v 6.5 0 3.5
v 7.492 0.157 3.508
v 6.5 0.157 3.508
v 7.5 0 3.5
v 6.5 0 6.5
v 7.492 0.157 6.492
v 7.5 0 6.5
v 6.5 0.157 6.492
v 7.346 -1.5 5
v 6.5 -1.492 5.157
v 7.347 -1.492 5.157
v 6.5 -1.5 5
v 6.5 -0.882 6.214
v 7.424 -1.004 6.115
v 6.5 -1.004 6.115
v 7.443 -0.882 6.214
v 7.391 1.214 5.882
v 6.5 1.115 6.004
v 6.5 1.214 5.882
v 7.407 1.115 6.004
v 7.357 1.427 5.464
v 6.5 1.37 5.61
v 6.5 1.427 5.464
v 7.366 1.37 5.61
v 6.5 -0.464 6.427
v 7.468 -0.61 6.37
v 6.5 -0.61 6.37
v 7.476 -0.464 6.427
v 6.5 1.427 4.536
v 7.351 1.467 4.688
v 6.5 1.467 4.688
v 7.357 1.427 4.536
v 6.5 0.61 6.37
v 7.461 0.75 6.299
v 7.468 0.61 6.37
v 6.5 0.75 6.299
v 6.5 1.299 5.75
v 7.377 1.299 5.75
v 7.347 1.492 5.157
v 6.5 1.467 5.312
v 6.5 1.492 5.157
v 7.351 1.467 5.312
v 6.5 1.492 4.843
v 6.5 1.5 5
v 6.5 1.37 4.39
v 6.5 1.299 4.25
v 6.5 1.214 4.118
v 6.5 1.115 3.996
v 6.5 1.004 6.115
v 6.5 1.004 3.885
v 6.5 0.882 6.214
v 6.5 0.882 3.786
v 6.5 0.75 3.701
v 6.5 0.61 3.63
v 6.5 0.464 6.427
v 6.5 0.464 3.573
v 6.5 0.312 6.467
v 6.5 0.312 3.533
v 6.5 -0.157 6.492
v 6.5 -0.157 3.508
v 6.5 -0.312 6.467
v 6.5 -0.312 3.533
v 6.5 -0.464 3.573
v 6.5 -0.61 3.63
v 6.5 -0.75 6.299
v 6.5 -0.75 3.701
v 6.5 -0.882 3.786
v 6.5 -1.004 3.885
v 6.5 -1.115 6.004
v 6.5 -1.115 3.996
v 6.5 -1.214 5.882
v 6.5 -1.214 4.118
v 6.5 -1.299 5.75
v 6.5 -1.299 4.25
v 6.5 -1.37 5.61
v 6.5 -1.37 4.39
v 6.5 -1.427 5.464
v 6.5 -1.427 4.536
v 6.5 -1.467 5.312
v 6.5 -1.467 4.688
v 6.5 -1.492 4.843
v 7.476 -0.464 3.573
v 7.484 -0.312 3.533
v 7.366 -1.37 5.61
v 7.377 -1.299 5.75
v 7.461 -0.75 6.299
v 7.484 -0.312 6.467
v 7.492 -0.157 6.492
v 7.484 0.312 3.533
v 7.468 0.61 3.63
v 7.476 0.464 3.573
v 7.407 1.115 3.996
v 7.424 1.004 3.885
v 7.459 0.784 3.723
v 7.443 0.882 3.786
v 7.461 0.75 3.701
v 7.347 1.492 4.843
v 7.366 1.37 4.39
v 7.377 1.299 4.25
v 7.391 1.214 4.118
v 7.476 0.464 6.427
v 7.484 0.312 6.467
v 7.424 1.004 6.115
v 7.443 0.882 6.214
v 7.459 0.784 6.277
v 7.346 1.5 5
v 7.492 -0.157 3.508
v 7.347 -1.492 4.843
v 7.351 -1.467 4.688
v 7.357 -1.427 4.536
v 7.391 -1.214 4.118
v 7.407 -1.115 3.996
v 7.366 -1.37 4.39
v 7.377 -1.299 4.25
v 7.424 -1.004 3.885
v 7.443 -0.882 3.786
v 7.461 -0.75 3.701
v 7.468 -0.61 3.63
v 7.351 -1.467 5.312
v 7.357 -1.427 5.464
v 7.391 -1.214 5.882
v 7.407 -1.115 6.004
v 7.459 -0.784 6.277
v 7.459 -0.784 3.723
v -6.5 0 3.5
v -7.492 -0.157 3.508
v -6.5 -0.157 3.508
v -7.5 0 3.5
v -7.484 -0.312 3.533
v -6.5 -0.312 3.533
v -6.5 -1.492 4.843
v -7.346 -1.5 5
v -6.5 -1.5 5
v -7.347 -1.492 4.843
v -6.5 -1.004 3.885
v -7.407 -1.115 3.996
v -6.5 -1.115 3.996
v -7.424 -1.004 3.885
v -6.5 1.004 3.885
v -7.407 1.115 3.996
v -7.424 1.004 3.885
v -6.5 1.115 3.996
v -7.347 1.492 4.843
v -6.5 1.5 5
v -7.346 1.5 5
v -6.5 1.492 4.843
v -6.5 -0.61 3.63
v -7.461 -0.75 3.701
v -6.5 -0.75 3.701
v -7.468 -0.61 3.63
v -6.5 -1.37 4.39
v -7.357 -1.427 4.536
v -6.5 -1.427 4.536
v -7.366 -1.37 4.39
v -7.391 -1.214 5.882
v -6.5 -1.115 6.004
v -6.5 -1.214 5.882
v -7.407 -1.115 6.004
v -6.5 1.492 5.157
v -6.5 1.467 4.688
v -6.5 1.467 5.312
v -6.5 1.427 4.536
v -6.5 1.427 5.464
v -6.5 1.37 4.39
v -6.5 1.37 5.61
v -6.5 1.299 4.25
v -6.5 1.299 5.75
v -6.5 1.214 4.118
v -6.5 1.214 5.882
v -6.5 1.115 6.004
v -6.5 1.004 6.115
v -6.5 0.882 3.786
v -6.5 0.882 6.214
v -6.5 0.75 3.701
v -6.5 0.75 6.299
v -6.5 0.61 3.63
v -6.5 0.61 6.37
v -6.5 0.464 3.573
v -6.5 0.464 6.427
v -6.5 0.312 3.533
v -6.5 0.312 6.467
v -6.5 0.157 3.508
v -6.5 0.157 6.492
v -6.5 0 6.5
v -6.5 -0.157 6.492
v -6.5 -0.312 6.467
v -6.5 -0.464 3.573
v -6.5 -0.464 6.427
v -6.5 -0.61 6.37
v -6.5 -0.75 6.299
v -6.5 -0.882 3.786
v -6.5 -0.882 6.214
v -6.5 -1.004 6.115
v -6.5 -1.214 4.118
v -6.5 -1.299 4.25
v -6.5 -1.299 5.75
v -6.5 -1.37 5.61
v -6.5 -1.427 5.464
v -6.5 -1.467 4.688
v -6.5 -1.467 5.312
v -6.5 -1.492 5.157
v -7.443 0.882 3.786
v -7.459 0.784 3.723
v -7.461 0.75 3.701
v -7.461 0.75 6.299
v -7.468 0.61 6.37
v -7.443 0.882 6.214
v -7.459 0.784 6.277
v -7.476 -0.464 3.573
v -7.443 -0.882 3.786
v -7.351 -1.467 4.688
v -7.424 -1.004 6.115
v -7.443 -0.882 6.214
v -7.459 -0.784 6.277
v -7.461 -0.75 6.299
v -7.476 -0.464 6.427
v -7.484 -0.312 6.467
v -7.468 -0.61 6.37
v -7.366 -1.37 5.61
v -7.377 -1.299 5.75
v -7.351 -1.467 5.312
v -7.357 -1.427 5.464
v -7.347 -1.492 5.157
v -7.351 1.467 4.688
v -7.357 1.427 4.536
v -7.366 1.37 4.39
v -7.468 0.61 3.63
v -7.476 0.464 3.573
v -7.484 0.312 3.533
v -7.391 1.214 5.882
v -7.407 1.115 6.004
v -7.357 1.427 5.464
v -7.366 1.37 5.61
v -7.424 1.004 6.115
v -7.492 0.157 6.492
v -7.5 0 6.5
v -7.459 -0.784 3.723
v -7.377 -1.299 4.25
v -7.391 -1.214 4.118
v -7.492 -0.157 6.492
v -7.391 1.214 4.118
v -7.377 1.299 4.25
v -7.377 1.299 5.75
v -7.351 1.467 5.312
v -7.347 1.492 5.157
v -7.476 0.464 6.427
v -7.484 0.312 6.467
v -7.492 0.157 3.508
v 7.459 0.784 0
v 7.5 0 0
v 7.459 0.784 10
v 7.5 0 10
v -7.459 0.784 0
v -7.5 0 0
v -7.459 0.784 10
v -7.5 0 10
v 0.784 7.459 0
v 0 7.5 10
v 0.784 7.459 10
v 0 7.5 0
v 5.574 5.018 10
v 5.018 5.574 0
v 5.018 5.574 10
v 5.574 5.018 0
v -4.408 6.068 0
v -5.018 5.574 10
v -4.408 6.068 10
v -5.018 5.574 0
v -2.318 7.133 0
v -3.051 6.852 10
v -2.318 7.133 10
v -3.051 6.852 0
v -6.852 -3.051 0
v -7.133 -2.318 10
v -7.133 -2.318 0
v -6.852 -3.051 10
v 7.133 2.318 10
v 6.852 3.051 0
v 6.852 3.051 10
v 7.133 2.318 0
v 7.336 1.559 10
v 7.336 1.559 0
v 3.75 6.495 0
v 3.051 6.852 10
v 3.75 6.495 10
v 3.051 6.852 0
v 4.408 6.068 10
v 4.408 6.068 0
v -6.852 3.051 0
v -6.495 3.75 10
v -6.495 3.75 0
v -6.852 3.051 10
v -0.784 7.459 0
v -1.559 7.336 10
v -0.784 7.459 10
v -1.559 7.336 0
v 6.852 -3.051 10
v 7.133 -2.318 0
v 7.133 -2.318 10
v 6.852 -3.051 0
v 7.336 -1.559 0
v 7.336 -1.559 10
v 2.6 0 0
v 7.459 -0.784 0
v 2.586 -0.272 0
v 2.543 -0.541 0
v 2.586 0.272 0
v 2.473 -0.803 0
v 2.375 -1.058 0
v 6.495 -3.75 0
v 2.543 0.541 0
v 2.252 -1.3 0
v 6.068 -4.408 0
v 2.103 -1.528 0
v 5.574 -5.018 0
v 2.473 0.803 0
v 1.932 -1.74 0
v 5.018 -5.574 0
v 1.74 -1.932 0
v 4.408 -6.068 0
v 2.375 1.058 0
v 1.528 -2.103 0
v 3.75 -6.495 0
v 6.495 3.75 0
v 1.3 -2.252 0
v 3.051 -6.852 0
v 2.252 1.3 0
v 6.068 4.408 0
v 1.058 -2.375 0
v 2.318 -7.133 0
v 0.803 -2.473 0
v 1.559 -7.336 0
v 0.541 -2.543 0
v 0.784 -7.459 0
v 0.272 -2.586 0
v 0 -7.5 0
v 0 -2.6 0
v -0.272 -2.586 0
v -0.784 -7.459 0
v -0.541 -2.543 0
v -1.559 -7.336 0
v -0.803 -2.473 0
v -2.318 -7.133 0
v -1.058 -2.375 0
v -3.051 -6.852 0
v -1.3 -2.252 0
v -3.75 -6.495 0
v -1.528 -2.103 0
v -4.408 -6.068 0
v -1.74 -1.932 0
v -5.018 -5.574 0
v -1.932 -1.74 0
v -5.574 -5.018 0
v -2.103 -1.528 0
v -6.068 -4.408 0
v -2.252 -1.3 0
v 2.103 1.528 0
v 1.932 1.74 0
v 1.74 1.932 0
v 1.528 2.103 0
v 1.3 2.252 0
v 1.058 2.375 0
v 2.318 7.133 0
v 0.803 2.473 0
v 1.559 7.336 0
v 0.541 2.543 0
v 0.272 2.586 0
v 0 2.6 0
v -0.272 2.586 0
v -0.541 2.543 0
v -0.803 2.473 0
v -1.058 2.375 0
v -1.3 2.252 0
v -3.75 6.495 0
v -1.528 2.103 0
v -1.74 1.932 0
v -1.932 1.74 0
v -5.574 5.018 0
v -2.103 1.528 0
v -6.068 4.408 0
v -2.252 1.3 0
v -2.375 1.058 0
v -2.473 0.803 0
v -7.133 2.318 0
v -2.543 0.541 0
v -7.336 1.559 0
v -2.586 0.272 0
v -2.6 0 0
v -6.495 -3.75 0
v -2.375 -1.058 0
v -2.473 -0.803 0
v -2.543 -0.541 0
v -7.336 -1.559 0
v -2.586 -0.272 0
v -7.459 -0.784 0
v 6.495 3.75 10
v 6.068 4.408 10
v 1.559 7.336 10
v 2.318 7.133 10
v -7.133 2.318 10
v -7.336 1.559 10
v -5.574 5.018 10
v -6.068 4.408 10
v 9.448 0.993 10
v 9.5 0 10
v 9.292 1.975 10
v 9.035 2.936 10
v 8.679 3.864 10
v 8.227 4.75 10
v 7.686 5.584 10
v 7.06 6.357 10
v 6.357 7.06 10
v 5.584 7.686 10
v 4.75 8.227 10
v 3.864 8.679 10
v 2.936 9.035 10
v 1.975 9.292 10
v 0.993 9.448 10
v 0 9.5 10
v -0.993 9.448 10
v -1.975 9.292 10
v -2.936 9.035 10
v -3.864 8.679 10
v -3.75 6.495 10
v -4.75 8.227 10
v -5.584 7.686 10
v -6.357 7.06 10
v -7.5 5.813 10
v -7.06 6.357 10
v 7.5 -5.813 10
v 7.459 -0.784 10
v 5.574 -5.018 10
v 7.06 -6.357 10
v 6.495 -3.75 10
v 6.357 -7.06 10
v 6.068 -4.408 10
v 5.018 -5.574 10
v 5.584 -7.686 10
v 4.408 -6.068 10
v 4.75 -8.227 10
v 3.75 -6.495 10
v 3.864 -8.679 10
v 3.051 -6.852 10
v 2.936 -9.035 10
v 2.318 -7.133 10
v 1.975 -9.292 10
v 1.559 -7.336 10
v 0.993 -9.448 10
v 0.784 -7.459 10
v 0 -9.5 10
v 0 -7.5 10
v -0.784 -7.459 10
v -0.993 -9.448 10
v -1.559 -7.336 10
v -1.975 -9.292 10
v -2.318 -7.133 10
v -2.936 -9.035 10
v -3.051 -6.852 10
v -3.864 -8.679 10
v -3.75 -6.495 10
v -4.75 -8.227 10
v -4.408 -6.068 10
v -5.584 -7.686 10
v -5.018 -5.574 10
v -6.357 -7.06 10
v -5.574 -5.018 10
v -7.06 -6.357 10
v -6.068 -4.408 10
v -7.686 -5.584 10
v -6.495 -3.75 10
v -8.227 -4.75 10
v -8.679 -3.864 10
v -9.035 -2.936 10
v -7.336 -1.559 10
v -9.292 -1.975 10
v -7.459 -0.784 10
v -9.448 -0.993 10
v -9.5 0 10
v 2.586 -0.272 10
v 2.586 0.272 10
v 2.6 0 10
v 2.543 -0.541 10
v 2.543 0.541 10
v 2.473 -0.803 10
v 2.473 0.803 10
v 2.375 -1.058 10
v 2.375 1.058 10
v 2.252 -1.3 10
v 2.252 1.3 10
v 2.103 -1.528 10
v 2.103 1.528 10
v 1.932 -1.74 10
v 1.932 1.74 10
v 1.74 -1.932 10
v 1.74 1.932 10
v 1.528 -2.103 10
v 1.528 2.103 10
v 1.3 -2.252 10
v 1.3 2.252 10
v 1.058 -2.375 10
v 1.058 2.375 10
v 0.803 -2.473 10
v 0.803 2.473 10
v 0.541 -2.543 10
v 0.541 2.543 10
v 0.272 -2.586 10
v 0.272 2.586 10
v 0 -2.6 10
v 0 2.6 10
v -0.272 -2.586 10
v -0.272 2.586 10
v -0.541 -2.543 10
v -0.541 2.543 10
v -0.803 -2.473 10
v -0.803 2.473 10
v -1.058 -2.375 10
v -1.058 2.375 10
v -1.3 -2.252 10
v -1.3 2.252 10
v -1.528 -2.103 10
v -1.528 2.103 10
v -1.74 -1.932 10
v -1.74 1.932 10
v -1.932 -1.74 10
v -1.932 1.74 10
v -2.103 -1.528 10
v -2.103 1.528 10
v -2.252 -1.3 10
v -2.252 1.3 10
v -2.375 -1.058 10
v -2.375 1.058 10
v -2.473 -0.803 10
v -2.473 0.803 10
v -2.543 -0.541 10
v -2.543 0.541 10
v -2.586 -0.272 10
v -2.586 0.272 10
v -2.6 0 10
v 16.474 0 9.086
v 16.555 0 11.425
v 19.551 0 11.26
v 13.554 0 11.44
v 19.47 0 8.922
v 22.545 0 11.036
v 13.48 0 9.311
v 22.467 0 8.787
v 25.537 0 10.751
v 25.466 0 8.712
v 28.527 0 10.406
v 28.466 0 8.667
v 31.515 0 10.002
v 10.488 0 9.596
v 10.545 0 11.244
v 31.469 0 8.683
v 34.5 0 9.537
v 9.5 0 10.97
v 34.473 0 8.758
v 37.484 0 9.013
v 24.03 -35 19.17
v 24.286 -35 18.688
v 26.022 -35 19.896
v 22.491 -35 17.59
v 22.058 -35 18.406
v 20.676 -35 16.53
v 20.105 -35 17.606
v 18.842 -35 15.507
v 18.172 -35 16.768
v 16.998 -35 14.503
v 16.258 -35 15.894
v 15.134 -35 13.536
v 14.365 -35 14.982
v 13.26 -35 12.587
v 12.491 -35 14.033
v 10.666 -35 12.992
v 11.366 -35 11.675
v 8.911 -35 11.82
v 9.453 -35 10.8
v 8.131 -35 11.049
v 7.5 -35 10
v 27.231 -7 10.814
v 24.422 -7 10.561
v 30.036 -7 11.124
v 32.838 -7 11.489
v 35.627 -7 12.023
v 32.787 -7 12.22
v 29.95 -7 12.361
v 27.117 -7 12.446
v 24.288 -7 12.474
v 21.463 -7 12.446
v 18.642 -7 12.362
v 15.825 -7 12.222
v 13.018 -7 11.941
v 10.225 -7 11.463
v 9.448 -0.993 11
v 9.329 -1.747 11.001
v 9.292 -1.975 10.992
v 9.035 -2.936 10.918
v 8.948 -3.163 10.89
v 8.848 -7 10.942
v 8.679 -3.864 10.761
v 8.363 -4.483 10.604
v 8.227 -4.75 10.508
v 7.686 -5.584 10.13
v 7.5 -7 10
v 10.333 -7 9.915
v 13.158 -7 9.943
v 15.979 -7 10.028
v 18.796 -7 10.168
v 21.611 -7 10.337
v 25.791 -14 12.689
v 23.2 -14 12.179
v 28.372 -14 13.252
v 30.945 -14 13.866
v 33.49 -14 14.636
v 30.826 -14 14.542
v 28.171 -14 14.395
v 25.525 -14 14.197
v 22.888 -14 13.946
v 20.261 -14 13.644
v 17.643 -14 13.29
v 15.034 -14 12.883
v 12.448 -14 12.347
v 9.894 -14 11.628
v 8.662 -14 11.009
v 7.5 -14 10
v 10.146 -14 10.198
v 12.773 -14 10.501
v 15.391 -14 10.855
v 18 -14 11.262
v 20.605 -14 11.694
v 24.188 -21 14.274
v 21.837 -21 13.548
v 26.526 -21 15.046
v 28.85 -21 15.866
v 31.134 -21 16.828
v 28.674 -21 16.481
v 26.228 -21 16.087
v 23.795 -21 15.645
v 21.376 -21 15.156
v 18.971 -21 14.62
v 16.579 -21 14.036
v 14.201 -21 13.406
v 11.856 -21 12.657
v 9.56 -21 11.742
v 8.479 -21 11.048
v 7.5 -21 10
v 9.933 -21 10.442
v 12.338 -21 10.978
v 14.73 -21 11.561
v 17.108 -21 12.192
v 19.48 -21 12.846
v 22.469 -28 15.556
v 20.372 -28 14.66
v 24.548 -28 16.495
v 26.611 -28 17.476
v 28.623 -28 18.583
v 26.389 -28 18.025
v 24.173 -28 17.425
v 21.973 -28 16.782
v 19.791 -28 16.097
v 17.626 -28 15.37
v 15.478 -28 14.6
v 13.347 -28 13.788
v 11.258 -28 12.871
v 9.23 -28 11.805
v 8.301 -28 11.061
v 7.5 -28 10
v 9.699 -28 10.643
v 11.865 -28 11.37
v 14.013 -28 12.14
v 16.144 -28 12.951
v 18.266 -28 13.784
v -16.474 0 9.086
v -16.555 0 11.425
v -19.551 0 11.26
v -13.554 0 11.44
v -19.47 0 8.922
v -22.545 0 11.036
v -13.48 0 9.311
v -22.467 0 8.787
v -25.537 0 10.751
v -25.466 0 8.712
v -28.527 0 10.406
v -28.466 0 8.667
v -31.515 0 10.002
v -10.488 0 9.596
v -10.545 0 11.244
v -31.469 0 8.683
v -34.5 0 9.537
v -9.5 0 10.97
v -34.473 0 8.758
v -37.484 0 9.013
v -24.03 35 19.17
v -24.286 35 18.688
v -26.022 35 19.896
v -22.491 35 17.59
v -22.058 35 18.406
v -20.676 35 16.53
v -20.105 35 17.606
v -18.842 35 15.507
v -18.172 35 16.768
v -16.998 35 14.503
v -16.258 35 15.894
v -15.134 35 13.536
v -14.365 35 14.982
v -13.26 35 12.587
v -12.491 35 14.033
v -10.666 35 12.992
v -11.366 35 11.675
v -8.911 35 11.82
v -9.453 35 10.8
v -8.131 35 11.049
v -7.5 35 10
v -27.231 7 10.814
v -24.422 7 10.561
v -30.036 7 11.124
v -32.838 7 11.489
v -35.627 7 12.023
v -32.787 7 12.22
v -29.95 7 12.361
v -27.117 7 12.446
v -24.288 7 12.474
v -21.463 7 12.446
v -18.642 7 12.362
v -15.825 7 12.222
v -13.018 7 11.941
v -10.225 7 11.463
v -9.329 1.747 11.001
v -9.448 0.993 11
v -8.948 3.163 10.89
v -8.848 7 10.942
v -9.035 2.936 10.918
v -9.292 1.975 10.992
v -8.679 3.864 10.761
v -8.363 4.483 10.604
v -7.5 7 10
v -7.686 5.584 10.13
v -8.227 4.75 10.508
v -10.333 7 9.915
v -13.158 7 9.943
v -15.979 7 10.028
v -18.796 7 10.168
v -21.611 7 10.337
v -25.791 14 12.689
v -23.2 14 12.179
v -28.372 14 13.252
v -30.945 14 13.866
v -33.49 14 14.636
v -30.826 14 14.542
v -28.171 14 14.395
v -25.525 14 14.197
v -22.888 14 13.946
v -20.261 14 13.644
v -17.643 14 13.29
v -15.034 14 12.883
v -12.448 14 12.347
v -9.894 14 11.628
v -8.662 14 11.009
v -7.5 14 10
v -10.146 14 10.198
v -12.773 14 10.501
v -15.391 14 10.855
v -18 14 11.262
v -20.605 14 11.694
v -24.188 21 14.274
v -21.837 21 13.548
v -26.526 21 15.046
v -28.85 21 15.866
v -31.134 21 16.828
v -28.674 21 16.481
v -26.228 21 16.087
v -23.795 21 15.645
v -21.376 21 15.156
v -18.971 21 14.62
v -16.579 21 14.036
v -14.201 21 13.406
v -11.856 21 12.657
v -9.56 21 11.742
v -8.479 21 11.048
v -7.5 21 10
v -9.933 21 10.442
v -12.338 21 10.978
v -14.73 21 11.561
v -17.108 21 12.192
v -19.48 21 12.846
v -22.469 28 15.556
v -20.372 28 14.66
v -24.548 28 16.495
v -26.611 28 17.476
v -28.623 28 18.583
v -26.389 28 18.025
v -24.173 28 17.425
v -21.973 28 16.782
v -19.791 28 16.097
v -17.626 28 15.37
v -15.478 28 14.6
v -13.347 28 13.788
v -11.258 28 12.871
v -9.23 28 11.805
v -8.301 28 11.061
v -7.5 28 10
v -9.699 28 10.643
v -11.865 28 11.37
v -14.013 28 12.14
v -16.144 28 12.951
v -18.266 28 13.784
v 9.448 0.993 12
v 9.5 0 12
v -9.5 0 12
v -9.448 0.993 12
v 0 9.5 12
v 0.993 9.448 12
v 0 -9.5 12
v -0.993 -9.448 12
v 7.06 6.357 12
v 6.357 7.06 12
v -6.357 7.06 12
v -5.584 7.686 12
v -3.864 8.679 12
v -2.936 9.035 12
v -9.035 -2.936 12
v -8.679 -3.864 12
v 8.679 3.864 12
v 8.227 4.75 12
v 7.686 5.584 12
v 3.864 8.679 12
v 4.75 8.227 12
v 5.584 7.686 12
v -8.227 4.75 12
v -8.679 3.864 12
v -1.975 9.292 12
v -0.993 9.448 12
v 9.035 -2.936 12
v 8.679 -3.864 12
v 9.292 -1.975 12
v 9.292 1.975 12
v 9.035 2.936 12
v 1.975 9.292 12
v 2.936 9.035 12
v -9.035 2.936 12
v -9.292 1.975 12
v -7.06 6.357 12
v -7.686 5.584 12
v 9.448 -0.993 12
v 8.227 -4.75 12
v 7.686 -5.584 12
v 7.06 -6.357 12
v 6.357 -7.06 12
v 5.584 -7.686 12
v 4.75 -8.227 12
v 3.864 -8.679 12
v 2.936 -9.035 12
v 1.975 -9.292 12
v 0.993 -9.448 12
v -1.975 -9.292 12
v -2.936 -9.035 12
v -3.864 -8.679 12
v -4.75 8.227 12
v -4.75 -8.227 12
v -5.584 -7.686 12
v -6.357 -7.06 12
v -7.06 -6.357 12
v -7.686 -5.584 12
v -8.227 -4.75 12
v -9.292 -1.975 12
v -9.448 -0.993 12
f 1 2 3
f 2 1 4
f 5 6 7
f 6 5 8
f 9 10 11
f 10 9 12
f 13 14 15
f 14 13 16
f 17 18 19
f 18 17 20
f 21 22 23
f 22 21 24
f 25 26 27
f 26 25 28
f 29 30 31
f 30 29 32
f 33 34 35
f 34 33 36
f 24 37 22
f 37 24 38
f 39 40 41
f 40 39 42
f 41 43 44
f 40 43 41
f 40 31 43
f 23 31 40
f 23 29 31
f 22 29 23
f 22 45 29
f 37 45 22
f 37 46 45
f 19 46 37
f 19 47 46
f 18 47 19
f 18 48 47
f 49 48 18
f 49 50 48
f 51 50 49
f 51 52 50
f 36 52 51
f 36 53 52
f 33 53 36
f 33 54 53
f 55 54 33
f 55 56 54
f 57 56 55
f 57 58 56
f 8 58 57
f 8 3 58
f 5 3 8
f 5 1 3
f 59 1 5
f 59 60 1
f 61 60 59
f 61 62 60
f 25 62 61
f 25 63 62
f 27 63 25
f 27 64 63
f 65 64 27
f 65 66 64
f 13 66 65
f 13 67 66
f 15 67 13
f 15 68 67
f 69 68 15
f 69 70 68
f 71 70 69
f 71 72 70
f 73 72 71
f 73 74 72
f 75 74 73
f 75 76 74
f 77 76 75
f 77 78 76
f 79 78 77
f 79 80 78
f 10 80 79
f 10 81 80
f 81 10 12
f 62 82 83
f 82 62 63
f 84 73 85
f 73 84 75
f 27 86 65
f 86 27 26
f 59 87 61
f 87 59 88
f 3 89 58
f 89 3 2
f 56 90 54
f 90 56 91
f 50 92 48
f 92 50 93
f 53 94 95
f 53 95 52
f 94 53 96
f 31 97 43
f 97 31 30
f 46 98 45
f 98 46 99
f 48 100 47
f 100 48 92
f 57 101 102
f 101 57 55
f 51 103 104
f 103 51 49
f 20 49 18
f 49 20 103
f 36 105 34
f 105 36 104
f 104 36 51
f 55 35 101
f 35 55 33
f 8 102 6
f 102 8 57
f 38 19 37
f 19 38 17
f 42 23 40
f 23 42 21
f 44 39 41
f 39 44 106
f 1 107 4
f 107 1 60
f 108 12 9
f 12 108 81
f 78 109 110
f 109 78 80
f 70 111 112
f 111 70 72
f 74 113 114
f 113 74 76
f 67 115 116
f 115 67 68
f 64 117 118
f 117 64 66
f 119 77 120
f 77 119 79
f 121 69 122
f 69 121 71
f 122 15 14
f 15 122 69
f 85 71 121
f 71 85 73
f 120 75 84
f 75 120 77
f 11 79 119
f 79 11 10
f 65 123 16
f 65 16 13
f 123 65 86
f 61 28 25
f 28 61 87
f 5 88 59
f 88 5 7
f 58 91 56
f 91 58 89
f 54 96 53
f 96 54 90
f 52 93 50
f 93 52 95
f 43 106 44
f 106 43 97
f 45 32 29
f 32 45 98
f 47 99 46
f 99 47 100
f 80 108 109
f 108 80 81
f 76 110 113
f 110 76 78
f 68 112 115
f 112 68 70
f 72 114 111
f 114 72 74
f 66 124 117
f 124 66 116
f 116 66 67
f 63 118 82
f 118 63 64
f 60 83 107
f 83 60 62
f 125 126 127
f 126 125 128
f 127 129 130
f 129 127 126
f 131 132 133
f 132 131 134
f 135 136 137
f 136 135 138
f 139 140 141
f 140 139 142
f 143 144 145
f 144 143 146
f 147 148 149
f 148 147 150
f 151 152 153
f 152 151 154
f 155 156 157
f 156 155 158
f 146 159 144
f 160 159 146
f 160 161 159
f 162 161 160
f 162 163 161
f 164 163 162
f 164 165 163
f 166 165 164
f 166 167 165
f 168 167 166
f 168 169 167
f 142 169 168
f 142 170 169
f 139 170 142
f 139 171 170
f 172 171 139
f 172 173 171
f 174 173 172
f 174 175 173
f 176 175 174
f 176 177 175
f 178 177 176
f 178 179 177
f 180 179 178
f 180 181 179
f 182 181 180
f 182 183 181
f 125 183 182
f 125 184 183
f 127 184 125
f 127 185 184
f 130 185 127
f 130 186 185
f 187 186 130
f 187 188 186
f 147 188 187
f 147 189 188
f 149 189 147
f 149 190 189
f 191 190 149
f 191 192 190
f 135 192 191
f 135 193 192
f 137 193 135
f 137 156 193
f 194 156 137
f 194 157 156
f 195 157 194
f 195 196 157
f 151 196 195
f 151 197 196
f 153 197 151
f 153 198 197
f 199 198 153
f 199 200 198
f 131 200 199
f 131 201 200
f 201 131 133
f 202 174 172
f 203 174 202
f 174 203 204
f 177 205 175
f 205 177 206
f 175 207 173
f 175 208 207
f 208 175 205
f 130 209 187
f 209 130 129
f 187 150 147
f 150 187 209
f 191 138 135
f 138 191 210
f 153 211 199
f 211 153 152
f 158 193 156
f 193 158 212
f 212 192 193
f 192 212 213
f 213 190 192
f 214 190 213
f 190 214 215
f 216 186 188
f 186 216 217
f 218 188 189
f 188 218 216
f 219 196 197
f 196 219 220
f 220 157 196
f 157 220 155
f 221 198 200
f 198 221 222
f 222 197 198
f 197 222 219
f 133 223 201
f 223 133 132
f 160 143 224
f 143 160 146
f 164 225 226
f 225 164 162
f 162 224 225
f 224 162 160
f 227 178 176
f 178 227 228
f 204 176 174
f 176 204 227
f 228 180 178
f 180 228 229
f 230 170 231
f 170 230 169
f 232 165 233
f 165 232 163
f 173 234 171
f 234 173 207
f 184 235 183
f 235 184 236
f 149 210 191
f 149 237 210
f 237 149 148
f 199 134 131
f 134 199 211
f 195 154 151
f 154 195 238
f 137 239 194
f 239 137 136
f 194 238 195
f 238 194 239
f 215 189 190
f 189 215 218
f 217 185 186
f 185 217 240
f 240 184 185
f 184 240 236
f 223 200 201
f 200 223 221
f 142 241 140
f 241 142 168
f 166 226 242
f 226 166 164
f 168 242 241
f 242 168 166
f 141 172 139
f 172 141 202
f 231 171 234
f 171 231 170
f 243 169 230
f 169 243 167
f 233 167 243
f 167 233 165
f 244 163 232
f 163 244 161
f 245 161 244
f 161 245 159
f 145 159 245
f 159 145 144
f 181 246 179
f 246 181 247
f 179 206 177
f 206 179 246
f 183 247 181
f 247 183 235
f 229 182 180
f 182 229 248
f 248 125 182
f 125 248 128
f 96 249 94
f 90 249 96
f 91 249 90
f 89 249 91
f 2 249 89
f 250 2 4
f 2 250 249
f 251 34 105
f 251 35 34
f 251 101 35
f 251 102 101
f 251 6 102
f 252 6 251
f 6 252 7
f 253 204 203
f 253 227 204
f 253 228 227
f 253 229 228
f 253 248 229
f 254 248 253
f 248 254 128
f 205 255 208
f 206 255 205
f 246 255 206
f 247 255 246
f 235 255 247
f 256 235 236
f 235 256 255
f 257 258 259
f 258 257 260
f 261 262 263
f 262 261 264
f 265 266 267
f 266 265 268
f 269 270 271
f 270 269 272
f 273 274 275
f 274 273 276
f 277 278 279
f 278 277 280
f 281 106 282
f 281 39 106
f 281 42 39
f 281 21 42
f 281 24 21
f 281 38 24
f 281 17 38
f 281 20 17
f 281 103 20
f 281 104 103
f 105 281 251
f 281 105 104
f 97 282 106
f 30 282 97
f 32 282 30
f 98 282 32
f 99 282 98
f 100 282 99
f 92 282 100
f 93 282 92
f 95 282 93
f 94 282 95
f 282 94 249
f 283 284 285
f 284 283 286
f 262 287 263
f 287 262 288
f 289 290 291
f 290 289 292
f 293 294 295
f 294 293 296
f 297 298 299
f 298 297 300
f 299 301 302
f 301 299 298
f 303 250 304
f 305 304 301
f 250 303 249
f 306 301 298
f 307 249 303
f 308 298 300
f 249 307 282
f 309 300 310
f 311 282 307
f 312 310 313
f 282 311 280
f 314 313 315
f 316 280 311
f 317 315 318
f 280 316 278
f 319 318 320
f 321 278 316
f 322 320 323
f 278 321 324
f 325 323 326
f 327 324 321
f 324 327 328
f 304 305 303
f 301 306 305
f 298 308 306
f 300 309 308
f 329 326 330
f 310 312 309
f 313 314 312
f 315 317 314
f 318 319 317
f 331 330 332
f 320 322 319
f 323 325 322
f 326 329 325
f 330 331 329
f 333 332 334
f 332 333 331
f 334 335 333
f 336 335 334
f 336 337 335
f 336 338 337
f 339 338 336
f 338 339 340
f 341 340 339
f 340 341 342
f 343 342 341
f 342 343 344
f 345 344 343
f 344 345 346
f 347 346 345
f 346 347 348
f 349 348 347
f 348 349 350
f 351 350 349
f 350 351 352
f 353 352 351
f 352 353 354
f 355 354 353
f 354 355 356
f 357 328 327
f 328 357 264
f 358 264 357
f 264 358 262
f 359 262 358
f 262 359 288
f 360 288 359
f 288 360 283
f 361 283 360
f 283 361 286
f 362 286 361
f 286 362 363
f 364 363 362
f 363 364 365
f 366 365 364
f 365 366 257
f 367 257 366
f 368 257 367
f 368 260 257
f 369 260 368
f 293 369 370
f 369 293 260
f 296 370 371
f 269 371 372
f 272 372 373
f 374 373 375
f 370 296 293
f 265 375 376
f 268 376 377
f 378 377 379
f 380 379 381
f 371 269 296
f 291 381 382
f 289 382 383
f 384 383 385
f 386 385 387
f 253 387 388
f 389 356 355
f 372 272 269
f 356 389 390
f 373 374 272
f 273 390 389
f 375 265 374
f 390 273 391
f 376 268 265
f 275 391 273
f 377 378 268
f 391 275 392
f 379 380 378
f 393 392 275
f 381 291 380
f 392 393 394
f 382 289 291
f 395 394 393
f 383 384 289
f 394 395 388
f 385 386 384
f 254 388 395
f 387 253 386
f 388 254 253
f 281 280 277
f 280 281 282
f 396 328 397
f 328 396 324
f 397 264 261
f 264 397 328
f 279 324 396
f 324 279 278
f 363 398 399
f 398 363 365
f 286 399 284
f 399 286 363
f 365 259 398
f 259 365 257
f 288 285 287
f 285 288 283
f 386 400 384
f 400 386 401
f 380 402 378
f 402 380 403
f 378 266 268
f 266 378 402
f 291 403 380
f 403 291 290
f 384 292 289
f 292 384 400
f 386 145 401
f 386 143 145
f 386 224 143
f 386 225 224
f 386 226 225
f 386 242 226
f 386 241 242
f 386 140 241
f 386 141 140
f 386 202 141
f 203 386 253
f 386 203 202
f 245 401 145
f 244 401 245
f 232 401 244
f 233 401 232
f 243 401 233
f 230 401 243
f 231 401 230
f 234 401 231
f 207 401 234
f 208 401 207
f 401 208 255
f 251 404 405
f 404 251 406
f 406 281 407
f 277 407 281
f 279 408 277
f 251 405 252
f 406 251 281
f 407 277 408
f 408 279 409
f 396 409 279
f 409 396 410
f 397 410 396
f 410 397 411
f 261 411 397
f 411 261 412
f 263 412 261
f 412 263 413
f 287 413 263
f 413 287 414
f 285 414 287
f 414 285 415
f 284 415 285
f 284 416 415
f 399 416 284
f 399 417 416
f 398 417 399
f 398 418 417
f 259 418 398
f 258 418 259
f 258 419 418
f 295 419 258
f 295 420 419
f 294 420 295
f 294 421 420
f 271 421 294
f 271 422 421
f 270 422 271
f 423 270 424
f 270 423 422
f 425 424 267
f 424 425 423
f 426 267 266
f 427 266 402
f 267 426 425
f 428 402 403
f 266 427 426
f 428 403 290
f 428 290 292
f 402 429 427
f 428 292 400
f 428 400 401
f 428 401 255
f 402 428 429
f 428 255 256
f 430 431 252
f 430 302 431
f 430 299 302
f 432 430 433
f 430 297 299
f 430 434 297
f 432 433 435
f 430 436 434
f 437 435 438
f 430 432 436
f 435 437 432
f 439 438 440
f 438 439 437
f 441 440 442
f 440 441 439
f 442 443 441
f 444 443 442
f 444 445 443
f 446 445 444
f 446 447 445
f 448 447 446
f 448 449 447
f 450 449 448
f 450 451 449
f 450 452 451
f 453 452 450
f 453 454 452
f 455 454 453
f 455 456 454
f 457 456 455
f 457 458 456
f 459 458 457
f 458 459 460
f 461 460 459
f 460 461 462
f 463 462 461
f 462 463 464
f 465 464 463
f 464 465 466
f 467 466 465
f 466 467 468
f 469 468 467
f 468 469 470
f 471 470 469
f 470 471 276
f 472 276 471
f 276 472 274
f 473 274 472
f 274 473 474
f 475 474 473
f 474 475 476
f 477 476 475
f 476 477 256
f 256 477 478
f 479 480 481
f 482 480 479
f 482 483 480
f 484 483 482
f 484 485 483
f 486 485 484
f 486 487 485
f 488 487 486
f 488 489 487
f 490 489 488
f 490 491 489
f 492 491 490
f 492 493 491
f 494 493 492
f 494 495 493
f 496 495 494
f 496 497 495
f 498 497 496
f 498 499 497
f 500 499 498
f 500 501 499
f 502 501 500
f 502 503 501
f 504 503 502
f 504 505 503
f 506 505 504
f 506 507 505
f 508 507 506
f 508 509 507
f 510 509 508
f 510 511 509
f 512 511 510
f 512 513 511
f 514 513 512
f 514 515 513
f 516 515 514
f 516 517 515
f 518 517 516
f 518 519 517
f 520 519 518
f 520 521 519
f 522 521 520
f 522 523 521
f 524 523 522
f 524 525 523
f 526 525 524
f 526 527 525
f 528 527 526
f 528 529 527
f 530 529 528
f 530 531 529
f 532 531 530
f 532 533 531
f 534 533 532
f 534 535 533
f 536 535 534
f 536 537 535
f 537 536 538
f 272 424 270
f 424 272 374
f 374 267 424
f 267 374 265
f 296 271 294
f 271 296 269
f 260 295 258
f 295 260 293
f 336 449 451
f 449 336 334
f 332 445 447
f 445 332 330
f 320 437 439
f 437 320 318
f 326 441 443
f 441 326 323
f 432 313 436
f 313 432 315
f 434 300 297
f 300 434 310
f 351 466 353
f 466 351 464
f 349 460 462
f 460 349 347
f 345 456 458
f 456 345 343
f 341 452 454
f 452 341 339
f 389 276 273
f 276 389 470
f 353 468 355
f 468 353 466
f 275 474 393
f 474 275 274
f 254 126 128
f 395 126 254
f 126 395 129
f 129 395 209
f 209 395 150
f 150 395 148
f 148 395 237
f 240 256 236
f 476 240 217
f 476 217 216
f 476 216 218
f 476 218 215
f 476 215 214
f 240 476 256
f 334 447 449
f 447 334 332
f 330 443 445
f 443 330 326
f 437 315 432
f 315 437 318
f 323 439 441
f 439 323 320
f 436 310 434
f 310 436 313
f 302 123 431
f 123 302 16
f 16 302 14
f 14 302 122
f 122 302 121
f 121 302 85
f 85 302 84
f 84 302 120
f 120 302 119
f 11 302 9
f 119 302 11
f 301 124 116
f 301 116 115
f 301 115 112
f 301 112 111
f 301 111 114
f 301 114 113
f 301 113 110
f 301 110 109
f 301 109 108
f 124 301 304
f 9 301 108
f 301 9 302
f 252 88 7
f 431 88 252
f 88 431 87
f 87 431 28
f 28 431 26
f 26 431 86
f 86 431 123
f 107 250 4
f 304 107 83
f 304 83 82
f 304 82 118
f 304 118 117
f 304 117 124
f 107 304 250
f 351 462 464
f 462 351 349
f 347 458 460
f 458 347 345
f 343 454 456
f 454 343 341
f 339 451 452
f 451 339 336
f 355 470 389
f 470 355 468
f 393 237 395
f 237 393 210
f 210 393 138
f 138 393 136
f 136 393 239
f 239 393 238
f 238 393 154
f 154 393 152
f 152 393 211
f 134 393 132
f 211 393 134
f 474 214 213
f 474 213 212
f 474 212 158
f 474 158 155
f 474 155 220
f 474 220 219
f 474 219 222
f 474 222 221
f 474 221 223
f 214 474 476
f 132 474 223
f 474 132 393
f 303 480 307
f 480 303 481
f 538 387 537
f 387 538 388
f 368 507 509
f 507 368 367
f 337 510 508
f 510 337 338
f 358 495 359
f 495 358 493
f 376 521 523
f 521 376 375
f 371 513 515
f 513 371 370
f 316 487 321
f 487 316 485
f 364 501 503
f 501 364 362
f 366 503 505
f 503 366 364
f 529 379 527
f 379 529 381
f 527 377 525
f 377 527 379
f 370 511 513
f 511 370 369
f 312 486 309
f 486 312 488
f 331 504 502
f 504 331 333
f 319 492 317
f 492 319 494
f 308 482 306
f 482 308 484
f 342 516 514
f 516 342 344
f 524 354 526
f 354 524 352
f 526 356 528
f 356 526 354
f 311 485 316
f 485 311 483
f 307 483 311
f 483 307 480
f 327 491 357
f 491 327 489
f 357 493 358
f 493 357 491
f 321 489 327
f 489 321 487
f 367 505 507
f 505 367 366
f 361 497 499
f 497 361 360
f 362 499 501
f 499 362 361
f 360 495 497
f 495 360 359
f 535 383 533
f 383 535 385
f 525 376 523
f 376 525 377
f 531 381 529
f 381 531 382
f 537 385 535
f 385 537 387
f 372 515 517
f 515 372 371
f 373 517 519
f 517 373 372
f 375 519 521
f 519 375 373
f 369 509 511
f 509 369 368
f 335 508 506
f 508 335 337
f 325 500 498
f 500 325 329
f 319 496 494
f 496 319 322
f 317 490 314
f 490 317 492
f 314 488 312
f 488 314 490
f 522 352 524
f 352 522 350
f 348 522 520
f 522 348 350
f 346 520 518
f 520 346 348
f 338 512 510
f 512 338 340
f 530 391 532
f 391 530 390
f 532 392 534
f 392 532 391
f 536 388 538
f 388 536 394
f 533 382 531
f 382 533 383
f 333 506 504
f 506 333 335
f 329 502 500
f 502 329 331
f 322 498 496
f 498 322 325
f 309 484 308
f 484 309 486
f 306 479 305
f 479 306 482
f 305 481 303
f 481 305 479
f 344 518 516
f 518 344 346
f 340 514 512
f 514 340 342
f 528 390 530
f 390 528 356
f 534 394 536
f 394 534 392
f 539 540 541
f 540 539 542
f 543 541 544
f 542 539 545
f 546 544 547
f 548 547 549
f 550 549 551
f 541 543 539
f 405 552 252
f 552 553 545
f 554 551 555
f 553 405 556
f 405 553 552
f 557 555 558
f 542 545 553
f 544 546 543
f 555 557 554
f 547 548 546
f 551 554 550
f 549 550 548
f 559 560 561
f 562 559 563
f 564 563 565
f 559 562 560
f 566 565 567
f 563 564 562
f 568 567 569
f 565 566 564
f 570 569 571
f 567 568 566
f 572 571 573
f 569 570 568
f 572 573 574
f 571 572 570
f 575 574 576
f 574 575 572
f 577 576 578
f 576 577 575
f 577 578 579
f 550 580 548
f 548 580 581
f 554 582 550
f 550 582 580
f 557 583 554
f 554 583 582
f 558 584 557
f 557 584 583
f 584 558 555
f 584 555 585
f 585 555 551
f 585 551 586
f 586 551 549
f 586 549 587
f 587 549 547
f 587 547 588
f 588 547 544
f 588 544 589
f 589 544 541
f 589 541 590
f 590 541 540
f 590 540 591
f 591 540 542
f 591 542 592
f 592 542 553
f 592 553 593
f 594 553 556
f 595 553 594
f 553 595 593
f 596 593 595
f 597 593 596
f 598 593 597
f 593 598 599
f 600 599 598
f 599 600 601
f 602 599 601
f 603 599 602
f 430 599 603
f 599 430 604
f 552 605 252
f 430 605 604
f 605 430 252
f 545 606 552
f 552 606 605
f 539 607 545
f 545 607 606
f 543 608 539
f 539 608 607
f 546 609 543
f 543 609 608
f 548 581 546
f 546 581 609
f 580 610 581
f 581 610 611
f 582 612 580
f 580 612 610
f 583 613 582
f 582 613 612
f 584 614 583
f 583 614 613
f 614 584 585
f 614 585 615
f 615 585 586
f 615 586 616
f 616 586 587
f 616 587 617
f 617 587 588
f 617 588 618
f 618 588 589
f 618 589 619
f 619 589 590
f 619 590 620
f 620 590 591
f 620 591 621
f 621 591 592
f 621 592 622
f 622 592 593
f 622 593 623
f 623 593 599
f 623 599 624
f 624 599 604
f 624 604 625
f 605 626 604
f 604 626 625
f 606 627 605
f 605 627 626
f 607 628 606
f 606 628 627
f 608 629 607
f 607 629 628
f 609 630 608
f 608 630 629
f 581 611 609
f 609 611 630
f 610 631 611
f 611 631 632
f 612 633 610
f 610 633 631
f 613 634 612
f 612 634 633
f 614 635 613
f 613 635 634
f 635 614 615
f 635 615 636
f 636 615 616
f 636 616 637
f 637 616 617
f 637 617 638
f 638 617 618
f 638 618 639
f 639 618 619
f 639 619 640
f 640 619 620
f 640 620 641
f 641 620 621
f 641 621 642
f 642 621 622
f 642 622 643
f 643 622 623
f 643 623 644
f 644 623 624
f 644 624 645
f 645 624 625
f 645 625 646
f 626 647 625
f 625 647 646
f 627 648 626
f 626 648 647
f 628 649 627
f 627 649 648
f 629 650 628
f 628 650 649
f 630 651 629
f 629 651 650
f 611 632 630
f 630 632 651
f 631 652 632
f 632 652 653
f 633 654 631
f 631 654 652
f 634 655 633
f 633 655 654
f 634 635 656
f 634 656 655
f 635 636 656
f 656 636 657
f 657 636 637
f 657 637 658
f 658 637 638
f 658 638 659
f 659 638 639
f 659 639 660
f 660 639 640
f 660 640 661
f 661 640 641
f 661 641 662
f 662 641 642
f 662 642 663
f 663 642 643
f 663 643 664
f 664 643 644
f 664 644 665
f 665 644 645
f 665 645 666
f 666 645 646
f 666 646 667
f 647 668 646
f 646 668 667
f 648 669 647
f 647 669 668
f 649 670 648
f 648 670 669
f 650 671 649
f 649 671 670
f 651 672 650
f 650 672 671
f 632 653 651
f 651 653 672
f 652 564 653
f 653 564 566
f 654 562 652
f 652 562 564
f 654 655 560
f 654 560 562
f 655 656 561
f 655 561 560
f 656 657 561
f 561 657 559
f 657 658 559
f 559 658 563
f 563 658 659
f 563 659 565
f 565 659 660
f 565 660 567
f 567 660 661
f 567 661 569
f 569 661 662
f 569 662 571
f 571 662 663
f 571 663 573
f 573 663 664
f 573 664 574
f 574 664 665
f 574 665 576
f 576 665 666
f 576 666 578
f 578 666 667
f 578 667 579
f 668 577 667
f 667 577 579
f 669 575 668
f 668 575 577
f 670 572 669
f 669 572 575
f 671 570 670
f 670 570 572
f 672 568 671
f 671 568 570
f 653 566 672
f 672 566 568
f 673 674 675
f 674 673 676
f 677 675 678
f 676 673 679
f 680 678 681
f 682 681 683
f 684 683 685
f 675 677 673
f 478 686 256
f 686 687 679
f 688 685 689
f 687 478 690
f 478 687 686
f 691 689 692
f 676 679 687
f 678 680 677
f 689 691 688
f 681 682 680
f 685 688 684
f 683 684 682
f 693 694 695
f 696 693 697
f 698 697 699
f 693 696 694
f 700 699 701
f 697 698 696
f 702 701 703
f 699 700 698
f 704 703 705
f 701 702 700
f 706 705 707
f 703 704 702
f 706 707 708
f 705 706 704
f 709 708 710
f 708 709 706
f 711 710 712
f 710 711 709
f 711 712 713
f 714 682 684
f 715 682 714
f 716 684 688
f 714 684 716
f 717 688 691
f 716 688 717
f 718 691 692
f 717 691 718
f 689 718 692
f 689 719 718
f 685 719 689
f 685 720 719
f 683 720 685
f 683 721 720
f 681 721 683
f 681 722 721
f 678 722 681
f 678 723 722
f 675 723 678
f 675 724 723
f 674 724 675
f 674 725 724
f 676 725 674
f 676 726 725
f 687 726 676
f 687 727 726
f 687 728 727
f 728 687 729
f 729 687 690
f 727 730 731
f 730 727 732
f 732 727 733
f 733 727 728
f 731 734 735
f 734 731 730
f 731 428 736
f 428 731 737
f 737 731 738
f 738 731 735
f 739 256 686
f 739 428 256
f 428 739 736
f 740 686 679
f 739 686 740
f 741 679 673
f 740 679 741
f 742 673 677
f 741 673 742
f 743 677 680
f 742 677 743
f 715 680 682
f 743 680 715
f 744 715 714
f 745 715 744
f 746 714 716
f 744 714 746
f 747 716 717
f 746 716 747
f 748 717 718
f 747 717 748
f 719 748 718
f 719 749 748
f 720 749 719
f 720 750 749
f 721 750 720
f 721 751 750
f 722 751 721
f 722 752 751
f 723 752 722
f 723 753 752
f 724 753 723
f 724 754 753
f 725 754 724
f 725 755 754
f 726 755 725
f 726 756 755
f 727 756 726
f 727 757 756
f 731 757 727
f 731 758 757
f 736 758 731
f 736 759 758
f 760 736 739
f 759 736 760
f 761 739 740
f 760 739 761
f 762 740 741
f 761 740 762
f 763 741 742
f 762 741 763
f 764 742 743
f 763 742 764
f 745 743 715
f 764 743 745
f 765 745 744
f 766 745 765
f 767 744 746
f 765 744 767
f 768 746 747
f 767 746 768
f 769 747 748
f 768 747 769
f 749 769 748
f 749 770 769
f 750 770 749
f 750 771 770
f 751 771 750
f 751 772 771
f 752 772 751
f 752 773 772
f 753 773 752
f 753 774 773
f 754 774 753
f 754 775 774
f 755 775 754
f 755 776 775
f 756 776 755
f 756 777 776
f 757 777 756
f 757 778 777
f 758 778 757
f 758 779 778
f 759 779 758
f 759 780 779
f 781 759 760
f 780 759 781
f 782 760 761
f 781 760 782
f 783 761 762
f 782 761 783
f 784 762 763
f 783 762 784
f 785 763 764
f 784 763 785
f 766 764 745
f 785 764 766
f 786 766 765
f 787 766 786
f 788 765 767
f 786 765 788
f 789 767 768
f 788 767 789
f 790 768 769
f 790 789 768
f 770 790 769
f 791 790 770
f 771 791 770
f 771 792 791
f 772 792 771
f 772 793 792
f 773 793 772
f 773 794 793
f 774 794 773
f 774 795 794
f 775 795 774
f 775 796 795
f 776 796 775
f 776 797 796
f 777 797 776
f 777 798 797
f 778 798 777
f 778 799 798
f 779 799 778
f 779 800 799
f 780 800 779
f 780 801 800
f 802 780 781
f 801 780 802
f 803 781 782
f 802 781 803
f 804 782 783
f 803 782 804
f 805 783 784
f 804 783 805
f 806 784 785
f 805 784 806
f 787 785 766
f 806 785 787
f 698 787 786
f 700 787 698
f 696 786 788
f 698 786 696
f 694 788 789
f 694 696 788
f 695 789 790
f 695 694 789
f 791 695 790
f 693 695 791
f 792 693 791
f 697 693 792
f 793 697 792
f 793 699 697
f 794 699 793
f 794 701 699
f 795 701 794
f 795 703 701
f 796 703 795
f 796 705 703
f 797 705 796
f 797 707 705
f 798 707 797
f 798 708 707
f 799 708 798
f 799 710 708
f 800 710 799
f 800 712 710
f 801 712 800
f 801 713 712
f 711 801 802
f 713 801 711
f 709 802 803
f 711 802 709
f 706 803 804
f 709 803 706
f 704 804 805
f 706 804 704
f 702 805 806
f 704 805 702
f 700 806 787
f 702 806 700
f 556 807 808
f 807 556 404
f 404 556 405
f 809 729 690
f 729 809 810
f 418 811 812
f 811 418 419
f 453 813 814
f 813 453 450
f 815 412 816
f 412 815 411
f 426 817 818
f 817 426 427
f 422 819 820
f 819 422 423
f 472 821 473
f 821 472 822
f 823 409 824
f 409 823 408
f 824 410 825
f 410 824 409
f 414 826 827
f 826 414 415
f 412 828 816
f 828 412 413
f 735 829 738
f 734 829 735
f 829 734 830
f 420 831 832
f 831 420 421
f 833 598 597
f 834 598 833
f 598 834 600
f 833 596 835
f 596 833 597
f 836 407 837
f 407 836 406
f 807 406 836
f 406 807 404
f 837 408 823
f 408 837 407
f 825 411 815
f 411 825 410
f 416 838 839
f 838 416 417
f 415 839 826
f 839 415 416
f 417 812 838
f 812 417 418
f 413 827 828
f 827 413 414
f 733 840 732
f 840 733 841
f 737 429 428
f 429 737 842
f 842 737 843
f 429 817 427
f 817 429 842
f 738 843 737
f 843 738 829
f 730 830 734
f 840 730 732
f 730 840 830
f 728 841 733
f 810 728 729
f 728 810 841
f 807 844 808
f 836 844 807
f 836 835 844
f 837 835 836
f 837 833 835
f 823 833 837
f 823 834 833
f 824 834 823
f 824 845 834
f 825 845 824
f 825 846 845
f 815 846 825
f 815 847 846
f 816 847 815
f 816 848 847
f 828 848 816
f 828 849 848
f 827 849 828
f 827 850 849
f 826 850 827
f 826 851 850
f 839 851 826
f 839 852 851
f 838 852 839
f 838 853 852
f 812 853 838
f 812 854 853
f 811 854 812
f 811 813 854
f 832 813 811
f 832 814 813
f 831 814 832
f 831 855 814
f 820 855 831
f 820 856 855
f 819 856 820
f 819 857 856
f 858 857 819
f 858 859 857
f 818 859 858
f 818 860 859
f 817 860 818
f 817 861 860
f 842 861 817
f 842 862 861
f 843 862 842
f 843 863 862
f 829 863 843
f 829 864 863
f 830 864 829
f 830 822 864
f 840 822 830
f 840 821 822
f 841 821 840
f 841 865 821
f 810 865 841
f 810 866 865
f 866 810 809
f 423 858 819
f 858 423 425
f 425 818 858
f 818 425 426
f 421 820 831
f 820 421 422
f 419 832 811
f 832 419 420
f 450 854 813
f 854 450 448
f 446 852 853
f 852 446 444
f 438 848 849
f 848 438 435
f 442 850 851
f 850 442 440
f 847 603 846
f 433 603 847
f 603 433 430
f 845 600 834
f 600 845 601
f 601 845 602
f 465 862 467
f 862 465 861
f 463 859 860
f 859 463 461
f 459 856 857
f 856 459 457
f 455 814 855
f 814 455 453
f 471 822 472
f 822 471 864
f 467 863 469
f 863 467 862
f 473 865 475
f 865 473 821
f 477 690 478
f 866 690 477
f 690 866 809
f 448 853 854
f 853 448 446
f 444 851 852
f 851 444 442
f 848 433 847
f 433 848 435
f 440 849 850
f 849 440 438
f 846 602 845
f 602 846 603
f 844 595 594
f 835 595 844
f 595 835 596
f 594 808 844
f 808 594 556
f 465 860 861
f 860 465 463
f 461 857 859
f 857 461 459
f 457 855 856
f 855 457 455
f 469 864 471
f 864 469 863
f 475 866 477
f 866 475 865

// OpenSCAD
/*
 * COMPLETE MOTOR + IMPELLER ASSEMBLY
 * For CFD fluid testing and visualization
 * 
 * This model includes:
 *   - Brushless motor (2204-2206 size)
 *   - Motor shaft (5mm)
 *   - Impeller hub
 *   - 3 impeller variants (bladeless, AI-blades, hybrid)
 *   - Mounting plate
 * 
 * Usage:
 *   - Render full assembly: F6
 *   - Export for CFD: Set EXPORT_MODE = "impeller_only"
 *   - Change design: Set IMPELLER_TYPE = "bladeless" | "bladed" | "hybrid"
 */

// ============================================================================
// CONFIGURATION PARAMETERS (AI-Optimizable)
// ============================================================================

// General Settings
$fn = 60;  // Resolution for CFD export (increase to 100 for final)

// Export Mode
EXPORT_MODE = "impeller_only";  // Options: "full_assembly", "impeller_only", "motor_only"

// Impeller Type
IMPELLER_TYPE = "bladed";  // Options: "bladeless", "bladed", "hybrid"

// Motor Specifications (2204-2206 brushless)
MOTOR_DIAMETER = 28;         // mm
MOTOR_HEIGHT = 25;           // mm
MOTOR_SHAFT_DIAMETER = 5;    // mm (standard)
MOTOR_SHAFT_LENGTH = 15;     // mm (extends above motor)
MOTOR_MOUNT_PATTERN = 16;    // mm (16x16 or 19x19 common)
MOTOR_SCREW_DIAMETER = 3;    // M3 screws

// Impeller Parameters - BLADELESS
BLADELESS_OUTER_DIAMETER = 90;    // mm
BLADELESS_AIR_GAP = 0.8;          // mm (optimize: 0.6-1.2)
BLADELESS_THROAT_RATIO = 0.72;    // (optimize: 0.65-0.80)
BLADELESS_EXPANSION_ANGLE = 18;   // degrees (optimize: 12-25)
BLADELESS_RING_THICKNESS = 3;     // mm (optimize: 2-4)
BLADELESS_HEIGHT = 24;            // mm

// Impeller Parameters - BLADED
BLADED_DIAMETER = 85;
BLADED_HUB_DIAMETER = 15;         // mm (optimize: 12-20)
BLADED_BLADE_COUNT = 2;
BLADED_ROOT_CHORD = 30;
BLADED_TIP_CHORD_RATIO = 0.7;    // (optimize: 0.6-0.8)
BLADED_BLADE_THICKNESS = 2;       // mm (optimize: 1.5-3)
BLADED_BLADE_TWIST = -30;
BLADED_ATTACK_ANGLE = -2;
BLADED_BLADE_HEIGHT = 12;         // mm (optimize: 10-15)

// Hub Parameters
HUB_DIAMETER = 15;
HUB_HEIGHT = 10;
HUB_SET_SCREW_DIAMETER = 3;  // M3 set screw

// Mounting Plate
PLATE_SIZE = 50;
PLATE_THICKNESS = 3;

// ============================================================================
// MOTOR MODEL
// ============================================================================

module brushless_motor_2204() {
    color("DarkSlateGray") {
        // Motor can (bell)
        difference() {
            cylinder(h=MOTOR_HEIGHT, d=MOTOR_DIAMETER);
            
            // Hollow inside (weight reduction visualization)
            translate([0, 0, -0.5])
                cylinder(h=MOTOR_HEIGHT - 5, d=MOTOR_DIAMETER - 4);
            
            // Mounting holes
            for(i = [0:3]) {
                rotate([0, 0, i * 90])
                    translate([MOTOR_MOUNT_PATTERN/2, 0, MOTOR_HEIGHT/2])
                        rotate([90, 0, 0])
                            cylinder(h=MOTOR_DIAMETER, d=MOTOR_SCREW_DIAMETER, center=true);
            }
        }
        
        // Motor base
        translate([0, 0, -3])
            cylinder(h=3, d=MOTOR_DIAMETER - 2);
    }
    
    // Motor shaft
    color("Silver")
        translate([0, 0, MOTOR_HEIGHT])
            cylinder(h=MOTOR_SHAFT_LENGTH, d=MOTOR_SHAFT_DIAMETER);
    
    // Shaft tip (for hub attachment)
    color("Silver")
        translate([0, 0, MOTOR_HEIGHT + MOTOR_SHAFT_LENGTH])
            cylinder(h=2, d=MOTOR_SHAFT_DIAMETER - 0.5);
}

// ============================================================================
// IMPELLER HUB
// ============================================================================

module impeller_hub() {
    color("Gray")
    difference() {
        // Hub body
        cylinder(h=HUB_HEIGHT, d=HUB_DIAMETER);
        
        // Shaft hole (5mm + 0.2mm clearance)
        translate([0, 0, -0.5])
            cylinder(h=HUB_HEIGHT + 1, d=MOTOR_SHAFT_DIAMETER + 0.2);
        
        // Set screw holes (2x for balance)
        for(i = [0:1]) {
            rotate([0, 0, i * 180])
                translate([HUB_DIAMETER/2 - 1, 0, HUB_HEIGHT/2])
                    rotate([0, 90, 0])
                        cylinder(h=5, d=HUB_SET_SCREW_DIAMETER);
        }
    }
}

// ============================================================================
// BLADELESS IMPELLER (Dyson-style)
// ============================================================================

module bladeless_impeller() {
    outer_r = BLADELESS_OUTER_DIAMETER / 2;
    throat_r = outer_r * BLADELESS_THROAT_RATIO;
    gap = BLADELESS_AIR_GAP;
    
    color("SkyBlue", 0.7)
    difference() {
        // Outer ring
        rotate_extrude()
            translate([outer_r - BLADELESS_RING_THICKNESS/2, BLADELESS_HEIGHT/2, 0])
                circle(d=BLADELESS_RING_THICKNESS + BLADELESS_HEIGHT);
        
        // Inner air gap (critical for Coanda effect)
        rotate_extrude()
            translate([outer_r - gap - BLADELESS_RING_THICKNESS/2, BLADELESS_HEIGHT/2, 0])
                circle(d=BLADELESS_RING_THICKNESS + BLADELESS_HEIGHT - 2*gap);
    }
    
    // Base plate (connects to hub)
    color("SkyBlue", 0.7)
    translate([0, 0, -2])
        difference() {
            cylinder(h=2, d=outer_r * 2);
            translate([0, 0, -0.5])
                cylinder(h=3, d=HUB_DIAMETER + 1);
        }
    
    // Air inlet (bell-shaped for smooth flow)
    color("SkyBlue", 0.7)
    translate([0, 0, -2]) {
        difference() {
            cylinder(h=15, d1=throat_r * 2, d2=outer_r * 1.8);
            translate([0, 0, -0.5])
                cylinder(h=16, d1=throat_r * 2 - 3, d2=outer_r * 1.8 - 3);
        }
    }
}

// ============================================================================
// AI-OPTIMIZED BLADED IMPELLER (NACA 2412 profile)
// ============================================================================

module naca_2412_blade(chord, height, twist_angle, attack_angle) {
    // Simplified NACA 2412 airfoil profile
    // Using parametric approximation for 3D printing
    
    color("LightSteelBlue", 0.8)
    linear_extrude(height=height, twist=twist_angle, scale=BLADED_TIP_CHORD_RATIO) {
        rotate([0, 0, attack_angle])
        polygon([
            // Upper surface (cambered)
            [0, 0],
            [chord * 0.05, chord * 0.03],
            [chord * 0.1, chord * 0.045],
            [chord * 0.2, chord * 0.055],
            [chord * 0.3, chord * 0.058],
            [chord * 0.4, chord * 0.056],
            [chord * 0.5, chord * 0.052],
            [chord * 0.6, chord * 0.046],
            [chord * 0.7, chord * 0.038],
            [chord * 0.8, chord * 0.028],
            [chord * 0.9, chord * 0.016],
            [chord * 1.0, chord * 0.002],
            // Lower surface (less cambered)
            [chord * 0.9, -chord * 0.010],
            [chord * 0.8, -chord * 0.016],
            [chord * 0.7, -chord * 0.020],
            [chord * 0.6, -chord * 0.022],
            [chord * 0.5, -chord * 0.023],
            [chord * 0.4, -chord * 0.022],
            [chord * 0.3, -chord * 0.020],
            [chord * 0.2, -chord * 0.016],
            [chord * 0.1, -chord * 0.010],
            [chord * 0.05, -chord * 0.005],
        ]);
    }
}

module bladed_impeller() {
    // Blades
    for(i = [0 : BLADED_BLADE_COUNT - 1]) {
        rotate([0, 0, i * (360 / BLADED_BLADE_COUNT)])
            translate([BLADED_HUB_DIAMETER/2, 0, 0])
                rotate([90, 0, 0])
                    naca_2412_blade(
                        BLADED_ROOT_CHORD, 
                        (BLADED_DIAMETER - BLADED_HUB_DIAMETER) / 2,
                        BLADED_BLADE_TWIST,
                        BLADED_ATTACK_ANGLE
                    );
    }
    
    // Hub disk (connects blades)
    color("LightSteelBlue", 0.8)
    cylinder(h=2, d=BLADED_HUB_DIAMETER + 4);
}

// ============================================================================
// HYBRID IMPELLER (Blades inside bladeless ring)
// ============================================================================

module hybrid_impeller() {
    // Outer bladeless ring
    bladeless_impeller();
    
    // Inner bladed impeller (scaled down to fit)
    scale([0.85, 0.85, 1])
        bladed_impeller();
}

// ============================================================================
// MOUNTING PLATE
// ============================================================================

module mounting_plate() {
    color("DimGray")
    difference() {
        // Base plate
        translate([-PLATE_SIZE/2, -PLATE_SIZE/2, 0])
            cube([PLATE_SIZE, PLATE_SIZE, PLATE_THICKNESS]);
        
        // Center hole for motor shaft
        translate([0, 0, -0.5])
            cylinder(h=PLATE_THICKNESS + 1, d=MOTOR_DIAMETER + 2);
        
        // Motor mounting holes
        for(i = [0:3]) {
            rotate([0, 0, i * 90])
                translate([MOTOR_MOUNT_PATTERN/2, 0, -0.5])
                    cylinder(h=PLATE_THICKNESS + 1, d=MOTOR_SCREW_DIAMETER);
        }
    }
}

// ============================================================================
// COMPLETE ASSEMBLY
// ============================================================================

module complete_assembly() {
    // Mounting plate (bottom)
    translate([0, 0, -PLATE_THICKNESS])
        mounting_plate();
    
    // Motor
    translate([0, 0, 0])
        brushless_motor_2204();
    
    // Hub (on shaft)
    translate([0, 0, MOTOR_HEIGHT + MOTOR_SHAFT_LENGTH - 2])
        impeller_hub();
    
    // Impeller (on hub)
    translate([0, 0, MOTOR_HEIGHT + MOTOR_SHAFT_LENGTH + HUB_HEIGHT]) {
        if (IMPELLER_TYPE == "bladeless") {
            bladeless_impeller();
        } else if (IMPELLER_TYPE == "bladed") {
            bladed_impeller();
        } else if (IMPELLER_TYPE == "hybrid") {
            hybrid_impeller();
        }
    }
}

// ============================================================================
// RENDER BASED ON EXPORT MODE
// ============================================================================

if (EXPORT_MODE == "full_assembly") {
    complete_assembly();
} 
else if (EXPORT_MODE == "impeller_only") {
    // For CFD testing - impeller + hub only
    impeller_hub();
    translate([0, 0, HUB_HEIGHT]) {
        if (IMPELLER_TYPE == "bladeless") {
            bladeless_impeller();
        } else if (IMPELLER_TYPE == "bladed") {
            bladed_impeller();
        } else if (IMPELLER_TYPE == "hybrid") {
            hybrid_impeller();
        }
    }
}
else if (EXPORT_MODE == "motor_only") {
    brushless_motor_2204();
}

// ============================================================================
// ANNOTATIONS FOR VISUALIZATION
// ============================================================================

// Uncomment to show dimensions
/*
color("Red", 0.3)
translate([BLADED_DIAMETER/2 + 10, 0, 20])
    text(str("Ø", BLADED_DIAMETER, "mm"), size=5, halign="left");

color("Green", 0.3)
translate([0, BLADED_DIAMETER/2 + 10, 20])
    text(str(BLADED_BLADE_COUNT, " blades"), size=5, halign="center");
*/

// ============================================================================
// EXPORT NOTES
// ============================================================================

/*
 * TO EXPORT FOR CFD TESTING:
 * 
 * 1. Set EXPORT_MODE = "impeller_only"
 * 2. Set IMPELLER_TYPE = "bladeless" (or "bladed" or "hybrid")
 * 3. Press F6 to render
 * 4. File → Export → Export as STL
 * 5. Use filename: impeller_bladeless_fn60.stl
 * 
 * FOR OPTIMIZATION:
 * - Modify parameters at top (marked with "optimize:")
 * - Re-render and export
 * - Upload to SimScale for CFD
 * - Compare results
 * 
 * RECOMMENDED CFD SETTINGS:
 * - Solver: k-omega SST
 * - RPM: 5000, 7000, 9000
 * - Mesh: 3-5M cells
 * - Boundary: Rotating zone on impeller
 */
